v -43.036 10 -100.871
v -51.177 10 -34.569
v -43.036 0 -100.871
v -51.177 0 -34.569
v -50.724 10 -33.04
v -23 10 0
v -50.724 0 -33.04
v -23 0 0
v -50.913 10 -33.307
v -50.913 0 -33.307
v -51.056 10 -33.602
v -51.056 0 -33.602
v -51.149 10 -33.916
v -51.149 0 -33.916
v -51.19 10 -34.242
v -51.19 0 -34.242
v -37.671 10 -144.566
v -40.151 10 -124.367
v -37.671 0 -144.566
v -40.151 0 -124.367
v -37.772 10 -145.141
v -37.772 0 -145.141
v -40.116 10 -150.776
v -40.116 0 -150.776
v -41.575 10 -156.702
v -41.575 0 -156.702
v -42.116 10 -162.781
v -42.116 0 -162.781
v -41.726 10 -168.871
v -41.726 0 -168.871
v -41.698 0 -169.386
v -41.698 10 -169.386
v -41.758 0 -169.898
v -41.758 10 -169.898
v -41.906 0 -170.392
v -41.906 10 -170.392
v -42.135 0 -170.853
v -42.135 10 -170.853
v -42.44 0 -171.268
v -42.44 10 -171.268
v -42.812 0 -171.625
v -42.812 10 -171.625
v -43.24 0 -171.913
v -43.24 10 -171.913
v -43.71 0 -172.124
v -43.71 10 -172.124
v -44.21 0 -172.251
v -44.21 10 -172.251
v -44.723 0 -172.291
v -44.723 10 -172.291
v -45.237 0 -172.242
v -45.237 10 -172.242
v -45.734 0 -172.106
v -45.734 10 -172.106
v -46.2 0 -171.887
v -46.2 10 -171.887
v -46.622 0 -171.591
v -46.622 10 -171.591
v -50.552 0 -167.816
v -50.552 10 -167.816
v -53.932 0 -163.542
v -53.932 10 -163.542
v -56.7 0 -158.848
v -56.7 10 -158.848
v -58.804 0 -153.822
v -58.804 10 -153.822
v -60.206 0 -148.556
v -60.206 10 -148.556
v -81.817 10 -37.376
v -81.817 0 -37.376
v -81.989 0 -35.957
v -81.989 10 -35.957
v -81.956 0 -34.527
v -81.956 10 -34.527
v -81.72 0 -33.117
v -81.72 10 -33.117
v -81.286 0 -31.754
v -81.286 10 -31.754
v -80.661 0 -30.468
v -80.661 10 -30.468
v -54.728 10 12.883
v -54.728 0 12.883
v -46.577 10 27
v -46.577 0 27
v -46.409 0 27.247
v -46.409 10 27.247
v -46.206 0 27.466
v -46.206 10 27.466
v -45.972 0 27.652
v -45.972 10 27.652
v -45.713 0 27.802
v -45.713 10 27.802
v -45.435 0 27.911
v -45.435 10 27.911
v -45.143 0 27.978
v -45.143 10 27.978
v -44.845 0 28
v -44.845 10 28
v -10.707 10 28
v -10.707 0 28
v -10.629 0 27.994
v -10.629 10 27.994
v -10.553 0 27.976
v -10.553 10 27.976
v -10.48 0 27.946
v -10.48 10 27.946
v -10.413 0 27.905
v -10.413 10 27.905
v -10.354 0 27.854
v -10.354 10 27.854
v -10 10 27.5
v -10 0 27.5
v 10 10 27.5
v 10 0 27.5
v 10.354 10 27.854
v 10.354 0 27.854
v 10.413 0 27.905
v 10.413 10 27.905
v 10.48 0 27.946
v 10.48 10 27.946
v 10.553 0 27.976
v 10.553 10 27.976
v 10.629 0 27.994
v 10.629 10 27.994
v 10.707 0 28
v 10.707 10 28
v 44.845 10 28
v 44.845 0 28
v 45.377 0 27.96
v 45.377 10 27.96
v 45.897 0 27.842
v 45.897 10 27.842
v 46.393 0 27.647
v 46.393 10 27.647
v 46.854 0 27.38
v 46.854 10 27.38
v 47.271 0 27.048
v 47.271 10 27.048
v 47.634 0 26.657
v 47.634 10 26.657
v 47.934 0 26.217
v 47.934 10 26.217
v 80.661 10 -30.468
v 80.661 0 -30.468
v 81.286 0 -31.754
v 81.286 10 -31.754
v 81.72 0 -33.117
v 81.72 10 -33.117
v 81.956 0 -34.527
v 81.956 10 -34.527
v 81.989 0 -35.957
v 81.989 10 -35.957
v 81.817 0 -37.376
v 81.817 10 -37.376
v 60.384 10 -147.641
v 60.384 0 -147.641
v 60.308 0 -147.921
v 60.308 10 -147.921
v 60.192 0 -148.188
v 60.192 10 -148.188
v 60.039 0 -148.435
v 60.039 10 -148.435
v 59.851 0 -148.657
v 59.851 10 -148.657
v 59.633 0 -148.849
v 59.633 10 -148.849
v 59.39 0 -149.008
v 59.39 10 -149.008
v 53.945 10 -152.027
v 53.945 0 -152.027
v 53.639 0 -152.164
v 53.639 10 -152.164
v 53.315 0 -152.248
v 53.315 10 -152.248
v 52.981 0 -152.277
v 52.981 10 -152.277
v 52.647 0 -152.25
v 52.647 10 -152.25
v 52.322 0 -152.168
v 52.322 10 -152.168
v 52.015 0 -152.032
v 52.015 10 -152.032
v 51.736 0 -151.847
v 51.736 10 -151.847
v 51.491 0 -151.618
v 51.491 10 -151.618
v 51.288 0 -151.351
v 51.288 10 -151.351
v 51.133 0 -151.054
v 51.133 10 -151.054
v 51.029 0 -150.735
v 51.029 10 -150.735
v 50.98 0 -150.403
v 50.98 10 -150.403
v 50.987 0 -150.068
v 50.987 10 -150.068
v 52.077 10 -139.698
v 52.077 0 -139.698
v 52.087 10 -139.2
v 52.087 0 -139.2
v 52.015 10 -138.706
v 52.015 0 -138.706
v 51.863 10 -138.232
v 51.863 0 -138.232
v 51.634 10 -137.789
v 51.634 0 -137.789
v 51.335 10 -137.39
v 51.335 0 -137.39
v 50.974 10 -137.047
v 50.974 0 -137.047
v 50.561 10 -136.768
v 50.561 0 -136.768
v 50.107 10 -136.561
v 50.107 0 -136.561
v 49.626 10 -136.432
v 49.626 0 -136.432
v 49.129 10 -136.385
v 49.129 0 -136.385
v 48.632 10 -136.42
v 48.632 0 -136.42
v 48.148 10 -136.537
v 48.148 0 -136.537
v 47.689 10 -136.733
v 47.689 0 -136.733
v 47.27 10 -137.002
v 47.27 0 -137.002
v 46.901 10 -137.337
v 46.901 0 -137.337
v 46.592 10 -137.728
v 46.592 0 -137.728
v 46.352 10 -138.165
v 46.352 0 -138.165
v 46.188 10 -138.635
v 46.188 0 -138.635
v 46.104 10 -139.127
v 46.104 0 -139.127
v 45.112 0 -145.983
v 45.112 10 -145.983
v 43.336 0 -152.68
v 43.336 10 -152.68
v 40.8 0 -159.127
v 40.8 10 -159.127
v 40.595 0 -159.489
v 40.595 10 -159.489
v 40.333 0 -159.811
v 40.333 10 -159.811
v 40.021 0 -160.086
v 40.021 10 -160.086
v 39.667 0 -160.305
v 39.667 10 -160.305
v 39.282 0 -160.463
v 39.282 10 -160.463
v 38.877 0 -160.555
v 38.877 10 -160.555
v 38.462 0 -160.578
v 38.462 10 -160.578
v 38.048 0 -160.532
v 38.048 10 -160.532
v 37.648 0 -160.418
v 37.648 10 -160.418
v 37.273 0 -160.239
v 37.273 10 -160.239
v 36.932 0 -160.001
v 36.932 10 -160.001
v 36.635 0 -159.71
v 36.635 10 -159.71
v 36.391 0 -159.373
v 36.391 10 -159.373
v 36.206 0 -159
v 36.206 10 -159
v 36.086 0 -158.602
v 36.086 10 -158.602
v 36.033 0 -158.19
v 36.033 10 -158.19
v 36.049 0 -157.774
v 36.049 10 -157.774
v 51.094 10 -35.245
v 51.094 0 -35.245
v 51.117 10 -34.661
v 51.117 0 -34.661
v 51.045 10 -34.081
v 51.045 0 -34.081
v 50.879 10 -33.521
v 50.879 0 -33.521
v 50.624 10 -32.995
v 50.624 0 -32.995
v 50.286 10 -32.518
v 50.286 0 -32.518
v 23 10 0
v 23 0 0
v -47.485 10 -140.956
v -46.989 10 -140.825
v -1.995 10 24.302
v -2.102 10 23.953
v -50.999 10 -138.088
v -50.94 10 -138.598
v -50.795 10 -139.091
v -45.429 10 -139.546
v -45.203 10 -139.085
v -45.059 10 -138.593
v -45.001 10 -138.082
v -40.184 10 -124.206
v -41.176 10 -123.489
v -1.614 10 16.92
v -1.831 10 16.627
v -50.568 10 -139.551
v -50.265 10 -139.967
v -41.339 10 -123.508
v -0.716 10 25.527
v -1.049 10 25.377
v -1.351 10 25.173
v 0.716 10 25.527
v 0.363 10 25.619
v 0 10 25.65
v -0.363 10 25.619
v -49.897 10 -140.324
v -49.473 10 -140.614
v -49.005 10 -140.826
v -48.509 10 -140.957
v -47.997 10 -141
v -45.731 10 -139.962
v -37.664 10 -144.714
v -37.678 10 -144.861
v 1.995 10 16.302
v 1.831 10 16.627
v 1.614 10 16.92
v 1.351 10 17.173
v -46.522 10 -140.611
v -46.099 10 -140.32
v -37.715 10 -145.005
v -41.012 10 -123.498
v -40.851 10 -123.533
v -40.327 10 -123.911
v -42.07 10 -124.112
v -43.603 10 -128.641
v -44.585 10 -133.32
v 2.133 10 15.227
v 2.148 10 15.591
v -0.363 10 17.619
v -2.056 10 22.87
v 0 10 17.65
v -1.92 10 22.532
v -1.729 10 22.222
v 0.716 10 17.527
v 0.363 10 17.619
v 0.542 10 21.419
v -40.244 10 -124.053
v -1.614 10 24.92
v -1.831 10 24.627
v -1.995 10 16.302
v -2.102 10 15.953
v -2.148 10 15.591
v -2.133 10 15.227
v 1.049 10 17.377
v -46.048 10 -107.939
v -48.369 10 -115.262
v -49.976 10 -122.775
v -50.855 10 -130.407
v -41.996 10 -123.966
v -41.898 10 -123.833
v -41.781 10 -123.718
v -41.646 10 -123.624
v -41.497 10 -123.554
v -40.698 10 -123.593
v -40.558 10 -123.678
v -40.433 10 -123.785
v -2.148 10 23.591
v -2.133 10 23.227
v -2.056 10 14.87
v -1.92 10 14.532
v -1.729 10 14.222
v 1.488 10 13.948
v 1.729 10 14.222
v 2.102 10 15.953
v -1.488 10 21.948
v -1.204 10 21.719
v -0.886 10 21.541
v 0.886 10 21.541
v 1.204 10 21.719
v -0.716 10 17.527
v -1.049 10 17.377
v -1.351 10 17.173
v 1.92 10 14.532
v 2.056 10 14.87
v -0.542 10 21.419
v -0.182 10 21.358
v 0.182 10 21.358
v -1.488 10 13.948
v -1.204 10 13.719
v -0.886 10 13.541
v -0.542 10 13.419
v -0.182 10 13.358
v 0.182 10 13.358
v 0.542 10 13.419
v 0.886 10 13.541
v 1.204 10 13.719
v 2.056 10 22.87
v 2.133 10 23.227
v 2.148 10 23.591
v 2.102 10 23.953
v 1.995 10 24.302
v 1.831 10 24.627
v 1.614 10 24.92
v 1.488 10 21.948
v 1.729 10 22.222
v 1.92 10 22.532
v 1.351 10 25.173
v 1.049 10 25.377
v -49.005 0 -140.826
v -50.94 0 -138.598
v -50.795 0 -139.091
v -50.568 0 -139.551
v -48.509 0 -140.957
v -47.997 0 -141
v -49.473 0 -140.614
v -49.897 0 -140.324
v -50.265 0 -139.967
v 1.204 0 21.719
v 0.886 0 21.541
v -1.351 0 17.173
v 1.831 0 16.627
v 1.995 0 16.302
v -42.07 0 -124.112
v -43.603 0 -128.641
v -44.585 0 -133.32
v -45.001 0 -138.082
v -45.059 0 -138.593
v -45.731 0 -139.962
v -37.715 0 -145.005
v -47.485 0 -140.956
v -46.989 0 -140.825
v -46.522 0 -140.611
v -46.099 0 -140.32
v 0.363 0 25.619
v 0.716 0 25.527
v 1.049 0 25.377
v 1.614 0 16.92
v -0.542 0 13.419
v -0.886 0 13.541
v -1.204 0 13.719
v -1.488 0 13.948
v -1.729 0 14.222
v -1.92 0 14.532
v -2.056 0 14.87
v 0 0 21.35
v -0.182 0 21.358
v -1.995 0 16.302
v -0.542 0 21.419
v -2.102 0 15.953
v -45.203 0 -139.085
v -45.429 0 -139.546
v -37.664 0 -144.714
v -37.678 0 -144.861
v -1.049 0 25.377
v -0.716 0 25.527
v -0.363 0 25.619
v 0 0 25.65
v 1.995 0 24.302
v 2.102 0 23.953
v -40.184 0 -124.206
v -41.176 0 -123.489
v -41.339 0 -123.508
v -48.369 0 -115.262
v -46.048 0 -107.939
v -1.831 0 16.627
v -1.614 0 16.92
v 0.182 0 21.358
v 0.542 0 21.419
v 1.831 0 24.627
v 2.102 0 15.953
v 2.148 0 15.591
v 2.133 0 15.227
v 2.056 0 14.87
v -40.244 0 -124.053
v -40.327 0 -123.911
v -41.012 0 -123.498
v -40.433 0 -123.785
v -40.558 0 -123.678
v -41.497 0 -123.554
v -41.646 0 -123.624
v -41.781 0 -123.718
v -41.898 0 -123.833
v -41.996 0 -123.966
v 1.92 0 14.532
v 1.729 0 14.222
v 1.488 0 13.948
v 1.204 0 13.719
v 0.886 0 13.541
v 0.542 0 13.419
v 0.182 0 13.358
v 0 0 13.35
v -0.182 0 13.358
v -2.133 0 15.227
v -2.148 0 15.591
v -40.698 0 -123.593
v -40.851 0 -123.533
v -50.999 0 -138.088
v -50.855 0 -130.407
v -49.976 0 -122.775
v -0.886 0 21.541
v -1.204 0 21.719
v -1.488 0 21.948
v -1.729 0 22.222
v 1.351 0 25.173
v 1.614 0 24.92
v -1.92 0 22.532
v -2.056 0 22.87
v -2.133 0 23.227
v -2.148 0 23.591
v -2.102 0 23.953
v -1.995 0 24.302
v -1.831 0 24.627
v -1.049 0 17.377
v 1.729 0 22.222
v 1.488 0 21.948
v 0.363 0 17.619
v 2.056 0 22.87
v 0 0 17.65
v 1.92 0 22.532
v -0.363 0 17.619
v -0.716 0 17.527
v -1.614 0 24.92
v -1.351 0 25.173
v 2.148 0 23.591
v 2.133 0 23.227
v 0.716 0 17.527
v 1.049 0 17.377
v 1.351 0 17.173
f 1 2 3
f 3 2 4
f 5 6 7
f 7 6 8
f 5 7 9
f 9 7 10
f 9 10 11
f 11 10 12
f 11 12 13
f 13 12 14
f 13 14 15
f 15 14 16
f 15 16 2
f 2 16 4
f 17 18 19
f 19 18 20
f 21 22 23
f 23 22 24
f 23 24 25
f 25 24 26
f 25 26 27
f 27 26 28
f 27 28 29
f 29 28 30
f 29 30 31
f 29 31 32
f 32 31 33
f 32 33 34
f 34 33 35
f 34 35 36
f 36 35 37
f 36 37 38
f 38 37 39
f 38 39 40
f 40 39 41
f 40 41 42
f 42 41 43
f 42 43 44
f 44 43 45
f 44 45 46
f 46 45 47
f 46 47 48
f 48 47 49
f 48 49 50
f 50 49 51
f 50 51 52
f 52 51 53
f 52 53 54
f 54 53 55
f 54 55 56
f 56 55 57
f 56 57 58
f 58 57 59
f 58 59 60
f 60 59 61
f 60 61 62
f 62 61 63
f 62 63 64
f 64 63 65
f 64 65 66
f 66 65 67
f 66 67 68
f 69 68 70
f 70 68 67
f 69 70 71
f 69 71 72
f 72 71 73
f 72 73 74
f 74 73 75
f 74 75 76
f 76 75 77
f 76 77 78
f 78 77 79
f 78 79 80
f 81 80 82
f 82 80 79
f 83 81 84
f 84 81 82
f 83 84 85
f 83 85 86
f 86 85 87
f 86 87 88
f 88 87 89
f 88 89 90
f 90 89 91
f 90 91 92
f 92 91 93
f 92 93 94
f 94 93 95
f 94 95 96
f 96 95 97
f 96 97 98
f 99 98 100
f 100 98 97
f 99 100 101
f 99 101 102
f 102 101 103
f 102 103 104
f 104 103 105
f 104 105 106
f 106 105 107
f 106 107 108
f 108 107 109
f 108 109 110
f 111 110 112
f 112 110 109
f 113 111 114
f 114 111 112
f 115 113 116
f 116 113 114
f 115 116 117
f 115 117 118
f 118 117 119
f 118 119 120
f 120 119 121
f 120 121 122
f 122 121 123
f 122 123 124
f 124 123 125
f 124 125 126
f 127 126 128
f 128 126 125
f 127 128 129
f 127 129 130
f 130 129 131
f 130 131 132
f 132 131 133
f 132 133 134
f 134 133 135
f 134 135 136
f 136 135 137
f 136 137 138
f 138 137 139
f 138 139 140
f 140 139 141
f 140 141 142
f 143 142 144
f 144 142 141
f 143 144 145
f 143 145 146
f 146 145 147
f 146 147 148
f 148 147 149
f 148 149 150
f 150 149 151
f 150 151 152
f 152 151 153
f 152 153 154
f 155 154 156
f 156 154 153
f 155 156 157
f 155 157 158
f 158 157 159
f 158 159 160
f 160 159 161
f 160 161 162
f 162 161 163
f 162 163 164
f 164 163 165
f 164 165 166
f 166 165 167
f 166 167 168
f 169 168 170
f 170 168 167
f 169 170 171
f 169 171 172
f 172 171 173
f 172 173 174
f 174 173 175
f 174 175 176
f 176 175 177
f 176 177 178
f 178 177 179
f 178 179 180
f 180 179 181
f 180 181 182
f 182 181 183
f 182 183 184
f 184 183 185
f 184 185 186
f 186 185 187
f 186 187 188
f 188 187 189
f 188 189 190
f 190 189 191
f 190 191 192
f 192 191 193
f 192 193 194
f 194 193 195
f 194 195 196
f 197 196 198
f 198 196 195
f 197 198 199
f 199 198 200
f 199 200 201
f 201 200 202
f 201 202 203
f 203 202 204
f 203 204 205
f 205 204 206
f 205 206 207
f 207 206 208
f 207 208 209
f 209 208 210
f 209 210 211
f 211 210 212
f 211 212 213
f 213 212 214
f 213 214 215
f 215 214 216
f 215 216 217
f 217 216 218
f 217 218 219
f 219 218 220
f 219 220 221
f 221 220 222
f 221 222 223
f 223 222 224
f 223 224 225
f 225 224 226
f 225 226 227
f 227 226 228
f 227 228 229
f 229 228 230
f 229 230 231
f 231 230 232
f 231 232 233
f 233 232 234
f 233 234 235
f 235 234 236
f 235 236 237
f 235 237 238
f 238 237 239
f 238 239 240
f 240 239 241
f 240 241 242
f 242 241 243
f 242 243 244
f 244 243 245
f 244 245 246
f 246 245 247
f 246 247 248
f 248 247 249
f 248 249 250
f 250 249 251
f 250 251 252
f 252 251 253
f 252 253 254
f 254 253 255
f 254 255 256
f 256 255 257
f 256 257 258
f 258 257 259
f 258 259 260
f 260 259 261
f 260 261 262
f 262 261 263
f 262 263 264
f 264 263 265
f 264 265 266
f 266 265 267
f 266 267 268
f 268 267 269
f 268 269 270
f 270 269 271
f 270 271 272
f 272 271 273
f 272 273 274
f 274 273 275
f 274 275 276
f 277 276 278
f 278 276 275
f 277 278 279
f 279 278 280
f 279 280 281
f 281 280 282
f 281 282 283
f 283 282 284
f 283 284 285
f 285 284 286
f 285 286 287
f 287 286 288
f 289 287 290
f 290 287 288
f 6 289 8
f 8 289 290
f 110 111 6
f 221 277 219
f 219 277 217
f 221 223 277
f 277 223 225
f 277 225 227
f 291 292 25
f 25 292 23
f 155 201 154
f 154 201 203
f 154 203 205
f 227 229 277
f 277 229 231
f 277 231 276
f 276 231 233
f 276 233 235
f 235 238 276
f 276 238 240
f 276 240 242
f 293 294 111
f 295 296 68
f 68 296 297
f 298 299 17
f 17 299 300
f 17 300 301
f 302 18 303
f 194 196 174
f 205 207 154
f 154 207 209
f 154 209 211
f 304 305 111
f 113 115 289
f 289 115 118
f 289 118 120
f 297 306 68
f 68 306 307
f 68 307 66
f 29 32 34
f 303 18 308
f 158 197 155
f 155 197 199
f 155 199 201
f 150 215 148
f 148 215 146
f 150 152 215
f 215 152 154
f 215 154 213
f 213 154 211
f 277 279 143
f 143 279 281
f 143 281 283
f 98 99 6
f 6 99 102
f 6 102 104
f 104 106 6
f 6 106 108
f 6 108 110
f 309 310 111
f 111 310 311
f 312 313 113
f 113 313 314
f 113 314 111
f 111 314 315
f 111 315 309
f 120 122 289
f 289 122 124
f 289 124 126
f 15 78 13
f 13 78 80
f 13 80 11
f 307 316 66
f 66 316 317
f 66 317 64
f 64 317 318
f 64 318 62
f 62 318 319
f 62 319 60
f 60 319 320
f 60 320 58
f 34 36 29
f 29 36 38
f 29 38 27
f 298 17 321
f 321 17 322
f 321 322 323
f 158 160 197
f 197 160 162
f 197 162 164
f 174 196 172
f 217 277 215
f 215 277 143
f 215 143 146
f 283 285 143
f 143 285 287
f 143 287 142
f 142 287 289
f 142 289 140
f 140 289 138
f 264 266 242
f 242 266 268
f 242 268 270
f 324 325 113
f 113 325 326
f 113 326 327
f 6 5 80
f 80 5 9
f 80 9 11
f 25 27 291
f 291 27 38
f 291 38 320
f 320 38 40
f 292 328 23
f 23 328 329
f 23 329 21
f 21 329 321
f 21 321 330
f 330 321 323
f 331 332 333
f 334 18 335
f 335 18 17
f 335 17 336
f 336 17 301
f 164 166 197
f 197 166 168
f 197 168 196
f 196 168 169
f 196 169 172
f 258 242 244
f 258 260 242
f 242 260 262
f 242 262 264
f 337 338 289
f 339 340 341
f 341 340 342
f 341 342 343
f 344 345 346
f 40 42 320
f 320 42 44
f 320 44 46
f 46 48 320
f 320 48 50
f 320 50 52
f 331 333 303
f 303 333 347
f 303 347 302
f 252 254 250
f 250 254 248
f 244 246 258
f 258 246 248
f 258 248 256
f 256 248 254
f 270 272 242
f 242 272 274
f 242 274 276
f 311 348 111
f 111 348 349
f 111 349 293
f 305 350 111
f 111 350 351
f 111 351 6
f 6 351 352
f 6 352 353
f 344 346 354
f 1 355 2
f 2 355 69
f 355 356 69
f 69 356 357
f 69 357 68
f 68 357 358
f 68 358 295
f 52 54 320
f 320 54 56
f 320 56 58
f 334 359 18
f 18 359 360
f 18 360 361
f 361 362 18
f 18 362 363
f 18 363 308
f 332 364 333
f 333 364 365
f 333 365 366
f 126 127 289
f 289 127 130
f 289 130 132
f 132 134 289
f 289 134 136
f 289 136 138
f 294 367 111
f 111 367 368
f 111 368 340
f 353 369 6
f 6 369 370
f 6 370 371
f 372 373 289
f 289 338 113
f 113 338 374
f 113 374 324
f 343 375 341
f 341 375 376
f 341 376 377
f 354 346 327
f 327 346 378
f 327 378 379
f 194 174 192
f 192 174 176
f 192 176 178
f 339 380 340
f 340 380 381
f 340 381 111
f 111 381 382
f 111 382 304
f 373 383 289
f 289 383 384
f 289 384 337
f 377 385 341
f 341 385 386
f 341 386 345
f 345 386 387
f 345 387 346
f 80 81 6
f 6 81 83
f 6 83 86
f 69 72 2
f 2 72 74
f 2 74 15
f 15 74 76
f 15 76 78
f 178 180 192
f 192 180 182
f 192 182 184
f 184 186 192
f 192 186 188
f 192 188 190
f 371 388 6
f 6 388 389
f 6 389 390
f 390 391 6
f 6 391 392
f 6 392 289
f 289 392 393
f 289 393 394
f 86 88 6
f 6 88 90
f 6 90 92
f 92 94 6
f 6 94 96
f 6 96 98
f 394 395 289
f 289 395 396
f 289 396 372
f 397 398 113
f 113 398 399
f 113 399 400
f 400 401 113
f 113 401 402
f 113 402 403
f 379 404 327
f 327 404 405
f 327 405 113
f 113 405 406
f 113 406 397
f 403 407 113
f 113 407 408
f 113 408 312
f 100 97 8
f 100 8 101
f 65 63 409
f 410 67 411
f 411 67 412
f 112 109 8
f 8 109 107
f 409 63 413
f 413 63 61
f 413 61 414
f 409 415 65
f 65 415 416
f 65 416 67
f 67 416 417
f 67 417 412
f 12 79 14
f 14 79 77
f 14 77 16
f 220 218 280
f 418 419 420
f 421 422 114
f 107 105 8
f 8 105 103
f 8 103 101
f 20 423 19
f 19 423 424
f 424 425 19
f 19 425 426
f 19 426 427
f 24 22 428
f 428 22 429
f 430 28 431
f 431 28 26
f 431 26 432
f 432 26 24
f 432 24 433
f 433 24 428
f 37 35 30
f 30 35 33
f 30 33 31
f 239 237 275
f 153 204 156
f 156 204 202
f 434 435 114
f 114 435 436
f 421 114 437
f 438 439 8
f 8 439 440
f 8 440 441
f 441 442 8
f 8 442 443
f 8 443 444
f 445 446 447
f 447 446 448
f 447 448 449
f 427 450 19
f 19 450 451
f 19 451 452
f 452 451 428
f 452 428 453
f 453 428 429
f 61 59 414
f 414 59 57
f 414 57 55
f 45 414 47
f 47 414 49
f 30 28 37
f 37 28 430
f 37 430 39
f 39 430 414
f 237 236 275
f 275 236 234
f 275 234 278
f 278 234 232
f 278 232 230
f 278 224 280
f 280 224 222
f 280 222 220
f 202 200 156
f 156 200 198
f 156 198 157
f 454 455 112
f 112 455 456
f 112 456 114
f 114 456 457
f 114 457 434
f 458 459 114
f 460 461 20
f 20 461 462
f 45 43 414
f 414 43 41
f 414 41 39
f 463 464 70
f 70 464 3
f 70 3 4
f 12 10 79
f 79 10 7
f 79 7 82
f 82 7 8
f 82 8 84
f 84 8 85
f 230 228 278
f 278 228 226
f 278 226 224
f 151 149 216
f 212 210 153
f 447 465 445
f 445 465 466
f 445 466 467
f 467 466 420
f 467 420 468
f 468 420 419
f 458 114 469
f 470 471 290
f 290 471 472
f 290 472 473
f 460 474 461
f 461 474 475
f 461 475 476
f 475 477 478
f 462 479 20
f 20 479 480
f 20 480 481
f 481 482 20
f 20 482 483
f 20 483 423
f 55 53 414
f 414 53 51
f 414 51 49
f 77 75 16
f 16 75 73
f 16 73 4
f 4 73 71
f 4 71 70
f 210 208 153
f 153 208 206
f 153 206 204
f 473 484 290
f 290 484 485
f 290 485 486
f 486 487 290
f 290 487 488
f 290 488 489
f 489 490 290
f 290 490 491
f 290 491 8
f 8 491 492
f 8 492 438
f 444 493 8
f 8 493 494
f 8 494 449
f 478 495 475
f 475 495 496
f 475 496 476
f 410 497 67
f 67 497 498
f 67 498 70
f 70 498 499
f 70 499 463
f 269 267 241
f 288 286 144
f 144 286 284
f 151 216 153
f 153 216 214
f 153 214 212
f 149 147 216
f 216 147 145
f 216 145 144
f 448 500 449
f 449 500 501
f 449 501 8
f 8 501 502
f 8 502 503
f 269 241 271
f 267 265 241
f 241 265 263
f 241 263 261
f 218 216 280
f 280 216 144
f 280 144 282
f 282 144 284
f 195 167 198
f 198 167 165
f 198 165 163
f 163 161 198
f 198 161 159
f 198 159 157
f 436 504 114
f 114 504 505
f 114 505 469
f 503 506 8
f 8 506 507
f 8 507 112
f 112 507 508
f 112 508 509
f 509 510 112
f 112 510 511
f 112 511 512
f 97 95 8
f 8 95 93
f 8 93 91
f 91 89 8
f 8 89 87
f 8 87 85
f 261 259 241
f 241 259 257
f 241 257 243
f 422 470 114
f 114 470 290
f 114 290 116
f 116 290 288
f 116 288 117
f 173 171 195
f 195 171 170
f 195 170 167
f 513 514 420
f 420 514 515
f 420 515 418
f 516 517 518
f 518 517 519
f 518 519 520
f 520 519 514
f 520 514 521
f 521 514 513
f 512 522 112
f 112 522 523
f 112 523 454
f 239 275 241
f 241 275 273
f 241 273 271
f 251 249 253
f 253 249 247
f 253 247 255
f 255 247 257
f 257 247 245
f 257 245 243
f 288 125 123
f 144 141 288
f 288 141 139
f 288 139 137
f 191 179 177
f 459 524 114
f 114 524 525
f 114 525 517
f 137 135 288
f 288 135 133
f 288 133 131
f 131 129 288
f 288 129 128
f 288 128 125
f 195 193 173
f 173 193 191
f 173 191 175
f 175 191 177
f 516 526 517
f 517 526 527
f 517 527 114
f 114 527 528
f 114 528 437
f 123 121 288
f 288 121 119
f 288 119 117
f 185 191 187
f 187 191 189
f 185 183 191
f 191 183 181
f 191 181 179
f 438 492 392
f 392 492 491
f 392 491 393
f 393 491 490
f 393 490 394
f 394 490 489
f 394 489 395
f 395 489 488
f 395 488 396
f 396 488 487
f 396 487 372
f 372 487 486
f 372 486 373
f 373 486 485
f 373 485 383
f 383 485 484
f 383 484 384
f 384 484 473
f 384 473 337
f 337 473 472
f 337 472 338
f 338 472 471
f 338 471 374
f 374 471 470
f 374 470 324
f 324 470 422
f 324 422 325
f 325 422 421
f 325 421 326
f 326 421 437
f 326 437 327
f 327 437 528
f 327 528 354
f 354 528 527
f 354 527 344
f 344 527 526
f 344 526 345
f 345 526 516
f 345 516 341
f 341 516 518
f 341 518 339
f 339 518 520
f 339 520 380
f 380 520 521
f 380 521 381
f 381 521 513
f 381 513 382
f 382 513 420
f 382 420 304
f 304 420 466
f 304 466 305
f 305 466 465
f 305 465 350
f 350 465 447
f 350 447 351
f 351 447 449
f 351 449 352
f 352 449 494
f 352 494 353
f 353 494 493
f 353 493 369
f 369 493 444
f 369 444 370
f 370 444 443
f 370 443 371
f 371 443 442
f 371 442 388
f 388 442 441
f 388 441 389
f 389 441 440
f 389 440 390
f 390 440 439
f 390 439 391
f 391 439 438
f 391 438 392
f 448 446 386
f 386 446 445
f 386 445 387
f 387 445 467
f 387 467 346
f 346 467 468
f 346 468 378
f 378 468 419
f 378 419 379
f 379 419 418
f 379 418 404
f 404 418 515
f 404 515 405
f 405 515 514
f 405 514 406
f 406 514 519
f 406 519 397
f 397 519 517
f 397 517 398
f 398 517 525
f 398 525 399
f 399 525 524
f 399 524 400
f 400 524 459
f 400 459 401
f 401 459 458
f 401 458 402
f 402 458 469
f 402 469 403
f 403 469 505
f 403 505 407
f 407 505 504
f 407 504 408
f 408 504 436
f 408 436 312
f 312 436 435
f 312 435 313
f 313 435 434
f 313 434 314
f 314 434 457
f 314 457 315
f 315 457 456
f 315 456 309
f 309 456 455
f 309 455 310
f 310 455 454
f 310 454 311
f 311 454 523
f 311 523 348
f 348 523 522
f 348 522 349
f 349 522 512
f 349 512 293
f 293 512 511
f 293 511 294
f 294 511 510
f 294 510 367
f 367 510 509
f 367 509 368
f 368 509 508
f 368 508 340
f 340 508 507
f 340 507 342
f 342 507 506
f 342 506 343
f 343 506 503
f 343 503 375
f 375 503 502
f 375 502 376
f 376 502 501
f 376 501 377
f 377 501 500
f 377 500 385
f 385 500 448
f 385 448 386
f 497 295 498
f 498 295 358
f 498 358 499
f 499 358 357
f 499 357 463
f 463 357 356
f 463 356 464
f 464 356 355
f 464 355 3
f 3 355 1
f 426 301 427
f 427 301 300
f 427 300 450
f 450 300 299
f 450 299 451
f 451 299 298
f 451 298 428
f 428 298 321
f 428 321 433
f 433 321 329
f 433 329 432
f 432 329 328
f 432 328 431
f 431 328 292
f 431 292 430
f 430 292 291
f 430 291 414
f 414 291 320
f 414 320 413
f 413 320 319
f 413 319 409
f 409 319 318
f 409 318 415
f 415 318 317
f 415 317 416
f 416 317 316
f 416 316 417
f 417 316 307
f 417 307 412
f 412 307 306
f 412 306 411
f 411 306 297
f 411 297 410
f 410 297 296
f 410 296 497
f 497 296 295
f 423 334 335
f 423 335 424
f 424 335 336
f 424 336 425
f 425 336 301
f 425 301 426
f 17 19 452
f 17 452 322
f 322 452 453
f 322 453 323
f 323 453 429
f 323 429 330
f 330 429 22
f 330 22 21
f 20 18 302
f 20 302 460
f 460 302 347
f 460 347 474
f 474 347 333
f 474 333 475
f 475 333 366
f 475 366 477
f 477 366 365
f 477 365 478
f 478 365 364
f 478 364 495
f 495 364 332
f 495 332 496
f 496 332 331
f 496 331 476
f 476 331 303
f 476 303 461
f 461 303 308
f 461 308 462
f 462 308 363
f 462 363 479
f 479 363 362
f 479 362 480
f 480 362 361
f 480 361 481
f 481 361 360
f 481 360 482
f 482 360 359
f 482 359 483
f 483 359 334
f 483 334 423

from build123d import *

# Parameters (mm, degrees)
EXTRUDE_1_DEPTH     = 10
CUT_EXTRUDE_1_REACH = 193.071
SKETCH_2_R          = 2.15
FILLET_1_R          = 1


with BuildPart() as part:
    # 草图1 → 凸台-拉伸1 (new body)
    with BuildSketch(Plane(origin=(0, 0, 0), x_dir=(1, 0, 0), z_dir=(0, 1, 0))):
        with BuildLine():
            Line((-23, 0), (23, 0))
            Line((23, 0), (50.285797586, 32.5179473))
            ThreePointArc((50.285797586, 32.5179473), (50.973364459, 33.797571478), (51.093655637, 35.245230373))
            Line((51.093655637, 35.245230373), (36.048986901, 157.774224452))
            ThreePointArc((36.048986901, 157.774224452), (37.845835898, 160.483359772), (40.800128771, 159.126807481))
            ThreePointArc((40.800128771, 159.126807481), (44.320748104, 149.357169855), (46.104078009, 139.126807481))
            ThreePointArc((46.104078009, 139.126807481), (49.378558351, 136.397919911), (52.076572947, 139.697884476))
            Line((52.076572947, 139.697884476), (50.986595809, 150.068324212))
            ThreePointArc((50.986595809, 150.068324212), (51.871765629, 151.945152782), (53.94525884, 152.026620552))
            Line((53.94525884, 152.026620552), (59.390134233, 149.008476838))
            ThreePointArc((59.390134233, 149.008476838), (60.038548982, 148.434807928), (60.38376936, 147.640855414))
            Line((60.38376936, 147.640855414), (81.817064827, 37.376109146))
            ThreePointArc((81.817064827, 37.376109146), (81.863649007, 33.817543133), (80.66104703, 30.468019192))
            Line((80.66104703, 30.468019192), (47.934130885, -26.216662346))
            ThreePointArc((47.934130885, -26.216662346), (46.628637115, -27.522156116), (44.845299462, -28))
            Line((44.845299462, -28), (10.707106781, -28))
            ThreePointArc((10.707106781, -28), (10.515765065, -27.961939766), (10.353553391, -27.853553391))
            Line((10.353553391, -27.853553391), (10, -27.5))
            Line((10, -27.5), (-10, -27.5))
            Line((-10, -27.5), (-10.353553391, -27.853553391))
            ThreePointArc((-10.353553391, -27.853553391), (-10.515765065, -27.961939766), (-10.707106781, -28))
            Line((-10.707106781, -28), (-44.845299462, -28))
            ThreePointArc((-44.845299462, -28), (-45.845299462, -27.732050808), (-46.577350269, -27))
            Line((-46.577350269, -27), (-54.72793721, -12.882769307))
            Line((-54.72793721, -12.882769307), (-80.66104703, 30.468019192))
            ThreePointArc((-80.66104703, 30.468019192), (-81.863649007, 33.817543133), (-81.817064827, 37.376109146))
            Line((-81.817064827, 37.376109146), (-60.205817968, 148.556335961))
            ThreePointArc((-60.205817968, 148.556335961), (-55.396009288, 161.24228741), (-46.622387315, 171.590774314))
            ThreePointArc((-46.622387315, 171.590774314), (-43.239620762, 171.913395421), (-41.72575767, 168.871124481))
            ThreePointArc((-41.72575767, 168.871124481), (-41.549863048, 156.552194932), (-37.633288365, 144.871124481))
            Line((-37.633288365, 144.871124481), (-51.176674229, 34.569098196))
            ThreePointArc((-51.176674229, 34.569098196), (-51.109221395, 33.75732882), (-50.723670812, 33.03978429))
            Line((-50.723670812, 33.03978429), (-23, 0))
        make_face()
    extrude(amount=EXTRUDE_1_DEPTH)

    # 草图2 → 切除-拉伸1 (cut, up to next)
    with BuildSketch(Plane(origin=(0, 10, 0), x_dir=(1, 0, 0), z_dir=(0, 1, 0)), mode=Mode.PRIVATE) as cut_extrude_1_sk1:
        with Locations(Location((0, -23.5, 0), (0, 0, 270))):
            Circle(SKETCH_2_R)
    cut_extrude_1_tool1 = extrude(cut_extrude_1_sk1.sketch, amount=-CUT_EXTRUDE_1_REACH, mode=Mode.PRIVATE) & part.part
    # 草图2 → 切除-拉伸1 (cut, up to next)
    with BuildSketch(Plane(origin=(0, 10, 0), x_dir=(1, 0, 0), z_dir=(0, 1, 0)), mode=Mode.PRIVATE) as cut_extrude_1_sk2:
        with Locations(Location((0, -15.5, 0), (0, 0, 270))):
            Circle(SKETCH_2_R)
    cut_extrude_1_tool2 = extrude(cut_extrude_1_sk2.sketch, amount=-CUT_EXTRUDE_1_REACH, mode=Mode.PRIVATE) & part.part
    # 草图2 → 切除-拉伸1 (cut, up to next)
    with BuildSketch(Plane(origin=(0, 10, 0), x_dir=(1, 0, 0), z_dir=(0, 1, 0)), mode=Mode.PRIVATE) as cut_extrude_1_sk3:
        with BuildLine():
            Line((-40.580117827, 120.871124481), (-43.035809045, 100.871124481))
            ThreePointArc((-43.035809045, 100.871124481), (-49.262696908, 118.999215044), (-50.998704156, 138.08816679))
            ThreePointArc((-50.998704156, 138.08816679), (-47.997070546, 140.99999857), (-45.001129375, 138.082310248))
            ThreePointArc((-45.001129375, 138.082310248), (-43.758467402, 129.228108775), (-40.580117827, 120.871124481))
        make_face()
    cut_extrude_1_tool3 = extrude(cut_extrude_1_sk3.sketch, amount=-CUT_EXTRUDE_1_REACH, mode=Mode.PRIVATE) & part.part
    add(cut_extrude_1_tool1.solids().sort_by_distance((0, 10, 23.5))[0], mode=Mode.SUBTRACT)
    add(cut_extrude_1_tool2.solids().sort_by_distance((0, 10, 15.5))[0], mode=Mode.SUBTRACT)
    add(cut_extrude_1_tool3.solids().sort_by_distance((-46.028937, 10, -123.122257))[0], mode=Mode.SUBTRACT)

    # 圆角1
    fillet_1_edges = [part.edges().sort_by_distance(p)[0] for p in [
        (-40.580117827, 5, -120.871124481),
        (-37.633288365, 5, -144.871124481),
    ]]
    fillet(fillet_1_edges, radius=FILLET_1_R)


solid = part.part
